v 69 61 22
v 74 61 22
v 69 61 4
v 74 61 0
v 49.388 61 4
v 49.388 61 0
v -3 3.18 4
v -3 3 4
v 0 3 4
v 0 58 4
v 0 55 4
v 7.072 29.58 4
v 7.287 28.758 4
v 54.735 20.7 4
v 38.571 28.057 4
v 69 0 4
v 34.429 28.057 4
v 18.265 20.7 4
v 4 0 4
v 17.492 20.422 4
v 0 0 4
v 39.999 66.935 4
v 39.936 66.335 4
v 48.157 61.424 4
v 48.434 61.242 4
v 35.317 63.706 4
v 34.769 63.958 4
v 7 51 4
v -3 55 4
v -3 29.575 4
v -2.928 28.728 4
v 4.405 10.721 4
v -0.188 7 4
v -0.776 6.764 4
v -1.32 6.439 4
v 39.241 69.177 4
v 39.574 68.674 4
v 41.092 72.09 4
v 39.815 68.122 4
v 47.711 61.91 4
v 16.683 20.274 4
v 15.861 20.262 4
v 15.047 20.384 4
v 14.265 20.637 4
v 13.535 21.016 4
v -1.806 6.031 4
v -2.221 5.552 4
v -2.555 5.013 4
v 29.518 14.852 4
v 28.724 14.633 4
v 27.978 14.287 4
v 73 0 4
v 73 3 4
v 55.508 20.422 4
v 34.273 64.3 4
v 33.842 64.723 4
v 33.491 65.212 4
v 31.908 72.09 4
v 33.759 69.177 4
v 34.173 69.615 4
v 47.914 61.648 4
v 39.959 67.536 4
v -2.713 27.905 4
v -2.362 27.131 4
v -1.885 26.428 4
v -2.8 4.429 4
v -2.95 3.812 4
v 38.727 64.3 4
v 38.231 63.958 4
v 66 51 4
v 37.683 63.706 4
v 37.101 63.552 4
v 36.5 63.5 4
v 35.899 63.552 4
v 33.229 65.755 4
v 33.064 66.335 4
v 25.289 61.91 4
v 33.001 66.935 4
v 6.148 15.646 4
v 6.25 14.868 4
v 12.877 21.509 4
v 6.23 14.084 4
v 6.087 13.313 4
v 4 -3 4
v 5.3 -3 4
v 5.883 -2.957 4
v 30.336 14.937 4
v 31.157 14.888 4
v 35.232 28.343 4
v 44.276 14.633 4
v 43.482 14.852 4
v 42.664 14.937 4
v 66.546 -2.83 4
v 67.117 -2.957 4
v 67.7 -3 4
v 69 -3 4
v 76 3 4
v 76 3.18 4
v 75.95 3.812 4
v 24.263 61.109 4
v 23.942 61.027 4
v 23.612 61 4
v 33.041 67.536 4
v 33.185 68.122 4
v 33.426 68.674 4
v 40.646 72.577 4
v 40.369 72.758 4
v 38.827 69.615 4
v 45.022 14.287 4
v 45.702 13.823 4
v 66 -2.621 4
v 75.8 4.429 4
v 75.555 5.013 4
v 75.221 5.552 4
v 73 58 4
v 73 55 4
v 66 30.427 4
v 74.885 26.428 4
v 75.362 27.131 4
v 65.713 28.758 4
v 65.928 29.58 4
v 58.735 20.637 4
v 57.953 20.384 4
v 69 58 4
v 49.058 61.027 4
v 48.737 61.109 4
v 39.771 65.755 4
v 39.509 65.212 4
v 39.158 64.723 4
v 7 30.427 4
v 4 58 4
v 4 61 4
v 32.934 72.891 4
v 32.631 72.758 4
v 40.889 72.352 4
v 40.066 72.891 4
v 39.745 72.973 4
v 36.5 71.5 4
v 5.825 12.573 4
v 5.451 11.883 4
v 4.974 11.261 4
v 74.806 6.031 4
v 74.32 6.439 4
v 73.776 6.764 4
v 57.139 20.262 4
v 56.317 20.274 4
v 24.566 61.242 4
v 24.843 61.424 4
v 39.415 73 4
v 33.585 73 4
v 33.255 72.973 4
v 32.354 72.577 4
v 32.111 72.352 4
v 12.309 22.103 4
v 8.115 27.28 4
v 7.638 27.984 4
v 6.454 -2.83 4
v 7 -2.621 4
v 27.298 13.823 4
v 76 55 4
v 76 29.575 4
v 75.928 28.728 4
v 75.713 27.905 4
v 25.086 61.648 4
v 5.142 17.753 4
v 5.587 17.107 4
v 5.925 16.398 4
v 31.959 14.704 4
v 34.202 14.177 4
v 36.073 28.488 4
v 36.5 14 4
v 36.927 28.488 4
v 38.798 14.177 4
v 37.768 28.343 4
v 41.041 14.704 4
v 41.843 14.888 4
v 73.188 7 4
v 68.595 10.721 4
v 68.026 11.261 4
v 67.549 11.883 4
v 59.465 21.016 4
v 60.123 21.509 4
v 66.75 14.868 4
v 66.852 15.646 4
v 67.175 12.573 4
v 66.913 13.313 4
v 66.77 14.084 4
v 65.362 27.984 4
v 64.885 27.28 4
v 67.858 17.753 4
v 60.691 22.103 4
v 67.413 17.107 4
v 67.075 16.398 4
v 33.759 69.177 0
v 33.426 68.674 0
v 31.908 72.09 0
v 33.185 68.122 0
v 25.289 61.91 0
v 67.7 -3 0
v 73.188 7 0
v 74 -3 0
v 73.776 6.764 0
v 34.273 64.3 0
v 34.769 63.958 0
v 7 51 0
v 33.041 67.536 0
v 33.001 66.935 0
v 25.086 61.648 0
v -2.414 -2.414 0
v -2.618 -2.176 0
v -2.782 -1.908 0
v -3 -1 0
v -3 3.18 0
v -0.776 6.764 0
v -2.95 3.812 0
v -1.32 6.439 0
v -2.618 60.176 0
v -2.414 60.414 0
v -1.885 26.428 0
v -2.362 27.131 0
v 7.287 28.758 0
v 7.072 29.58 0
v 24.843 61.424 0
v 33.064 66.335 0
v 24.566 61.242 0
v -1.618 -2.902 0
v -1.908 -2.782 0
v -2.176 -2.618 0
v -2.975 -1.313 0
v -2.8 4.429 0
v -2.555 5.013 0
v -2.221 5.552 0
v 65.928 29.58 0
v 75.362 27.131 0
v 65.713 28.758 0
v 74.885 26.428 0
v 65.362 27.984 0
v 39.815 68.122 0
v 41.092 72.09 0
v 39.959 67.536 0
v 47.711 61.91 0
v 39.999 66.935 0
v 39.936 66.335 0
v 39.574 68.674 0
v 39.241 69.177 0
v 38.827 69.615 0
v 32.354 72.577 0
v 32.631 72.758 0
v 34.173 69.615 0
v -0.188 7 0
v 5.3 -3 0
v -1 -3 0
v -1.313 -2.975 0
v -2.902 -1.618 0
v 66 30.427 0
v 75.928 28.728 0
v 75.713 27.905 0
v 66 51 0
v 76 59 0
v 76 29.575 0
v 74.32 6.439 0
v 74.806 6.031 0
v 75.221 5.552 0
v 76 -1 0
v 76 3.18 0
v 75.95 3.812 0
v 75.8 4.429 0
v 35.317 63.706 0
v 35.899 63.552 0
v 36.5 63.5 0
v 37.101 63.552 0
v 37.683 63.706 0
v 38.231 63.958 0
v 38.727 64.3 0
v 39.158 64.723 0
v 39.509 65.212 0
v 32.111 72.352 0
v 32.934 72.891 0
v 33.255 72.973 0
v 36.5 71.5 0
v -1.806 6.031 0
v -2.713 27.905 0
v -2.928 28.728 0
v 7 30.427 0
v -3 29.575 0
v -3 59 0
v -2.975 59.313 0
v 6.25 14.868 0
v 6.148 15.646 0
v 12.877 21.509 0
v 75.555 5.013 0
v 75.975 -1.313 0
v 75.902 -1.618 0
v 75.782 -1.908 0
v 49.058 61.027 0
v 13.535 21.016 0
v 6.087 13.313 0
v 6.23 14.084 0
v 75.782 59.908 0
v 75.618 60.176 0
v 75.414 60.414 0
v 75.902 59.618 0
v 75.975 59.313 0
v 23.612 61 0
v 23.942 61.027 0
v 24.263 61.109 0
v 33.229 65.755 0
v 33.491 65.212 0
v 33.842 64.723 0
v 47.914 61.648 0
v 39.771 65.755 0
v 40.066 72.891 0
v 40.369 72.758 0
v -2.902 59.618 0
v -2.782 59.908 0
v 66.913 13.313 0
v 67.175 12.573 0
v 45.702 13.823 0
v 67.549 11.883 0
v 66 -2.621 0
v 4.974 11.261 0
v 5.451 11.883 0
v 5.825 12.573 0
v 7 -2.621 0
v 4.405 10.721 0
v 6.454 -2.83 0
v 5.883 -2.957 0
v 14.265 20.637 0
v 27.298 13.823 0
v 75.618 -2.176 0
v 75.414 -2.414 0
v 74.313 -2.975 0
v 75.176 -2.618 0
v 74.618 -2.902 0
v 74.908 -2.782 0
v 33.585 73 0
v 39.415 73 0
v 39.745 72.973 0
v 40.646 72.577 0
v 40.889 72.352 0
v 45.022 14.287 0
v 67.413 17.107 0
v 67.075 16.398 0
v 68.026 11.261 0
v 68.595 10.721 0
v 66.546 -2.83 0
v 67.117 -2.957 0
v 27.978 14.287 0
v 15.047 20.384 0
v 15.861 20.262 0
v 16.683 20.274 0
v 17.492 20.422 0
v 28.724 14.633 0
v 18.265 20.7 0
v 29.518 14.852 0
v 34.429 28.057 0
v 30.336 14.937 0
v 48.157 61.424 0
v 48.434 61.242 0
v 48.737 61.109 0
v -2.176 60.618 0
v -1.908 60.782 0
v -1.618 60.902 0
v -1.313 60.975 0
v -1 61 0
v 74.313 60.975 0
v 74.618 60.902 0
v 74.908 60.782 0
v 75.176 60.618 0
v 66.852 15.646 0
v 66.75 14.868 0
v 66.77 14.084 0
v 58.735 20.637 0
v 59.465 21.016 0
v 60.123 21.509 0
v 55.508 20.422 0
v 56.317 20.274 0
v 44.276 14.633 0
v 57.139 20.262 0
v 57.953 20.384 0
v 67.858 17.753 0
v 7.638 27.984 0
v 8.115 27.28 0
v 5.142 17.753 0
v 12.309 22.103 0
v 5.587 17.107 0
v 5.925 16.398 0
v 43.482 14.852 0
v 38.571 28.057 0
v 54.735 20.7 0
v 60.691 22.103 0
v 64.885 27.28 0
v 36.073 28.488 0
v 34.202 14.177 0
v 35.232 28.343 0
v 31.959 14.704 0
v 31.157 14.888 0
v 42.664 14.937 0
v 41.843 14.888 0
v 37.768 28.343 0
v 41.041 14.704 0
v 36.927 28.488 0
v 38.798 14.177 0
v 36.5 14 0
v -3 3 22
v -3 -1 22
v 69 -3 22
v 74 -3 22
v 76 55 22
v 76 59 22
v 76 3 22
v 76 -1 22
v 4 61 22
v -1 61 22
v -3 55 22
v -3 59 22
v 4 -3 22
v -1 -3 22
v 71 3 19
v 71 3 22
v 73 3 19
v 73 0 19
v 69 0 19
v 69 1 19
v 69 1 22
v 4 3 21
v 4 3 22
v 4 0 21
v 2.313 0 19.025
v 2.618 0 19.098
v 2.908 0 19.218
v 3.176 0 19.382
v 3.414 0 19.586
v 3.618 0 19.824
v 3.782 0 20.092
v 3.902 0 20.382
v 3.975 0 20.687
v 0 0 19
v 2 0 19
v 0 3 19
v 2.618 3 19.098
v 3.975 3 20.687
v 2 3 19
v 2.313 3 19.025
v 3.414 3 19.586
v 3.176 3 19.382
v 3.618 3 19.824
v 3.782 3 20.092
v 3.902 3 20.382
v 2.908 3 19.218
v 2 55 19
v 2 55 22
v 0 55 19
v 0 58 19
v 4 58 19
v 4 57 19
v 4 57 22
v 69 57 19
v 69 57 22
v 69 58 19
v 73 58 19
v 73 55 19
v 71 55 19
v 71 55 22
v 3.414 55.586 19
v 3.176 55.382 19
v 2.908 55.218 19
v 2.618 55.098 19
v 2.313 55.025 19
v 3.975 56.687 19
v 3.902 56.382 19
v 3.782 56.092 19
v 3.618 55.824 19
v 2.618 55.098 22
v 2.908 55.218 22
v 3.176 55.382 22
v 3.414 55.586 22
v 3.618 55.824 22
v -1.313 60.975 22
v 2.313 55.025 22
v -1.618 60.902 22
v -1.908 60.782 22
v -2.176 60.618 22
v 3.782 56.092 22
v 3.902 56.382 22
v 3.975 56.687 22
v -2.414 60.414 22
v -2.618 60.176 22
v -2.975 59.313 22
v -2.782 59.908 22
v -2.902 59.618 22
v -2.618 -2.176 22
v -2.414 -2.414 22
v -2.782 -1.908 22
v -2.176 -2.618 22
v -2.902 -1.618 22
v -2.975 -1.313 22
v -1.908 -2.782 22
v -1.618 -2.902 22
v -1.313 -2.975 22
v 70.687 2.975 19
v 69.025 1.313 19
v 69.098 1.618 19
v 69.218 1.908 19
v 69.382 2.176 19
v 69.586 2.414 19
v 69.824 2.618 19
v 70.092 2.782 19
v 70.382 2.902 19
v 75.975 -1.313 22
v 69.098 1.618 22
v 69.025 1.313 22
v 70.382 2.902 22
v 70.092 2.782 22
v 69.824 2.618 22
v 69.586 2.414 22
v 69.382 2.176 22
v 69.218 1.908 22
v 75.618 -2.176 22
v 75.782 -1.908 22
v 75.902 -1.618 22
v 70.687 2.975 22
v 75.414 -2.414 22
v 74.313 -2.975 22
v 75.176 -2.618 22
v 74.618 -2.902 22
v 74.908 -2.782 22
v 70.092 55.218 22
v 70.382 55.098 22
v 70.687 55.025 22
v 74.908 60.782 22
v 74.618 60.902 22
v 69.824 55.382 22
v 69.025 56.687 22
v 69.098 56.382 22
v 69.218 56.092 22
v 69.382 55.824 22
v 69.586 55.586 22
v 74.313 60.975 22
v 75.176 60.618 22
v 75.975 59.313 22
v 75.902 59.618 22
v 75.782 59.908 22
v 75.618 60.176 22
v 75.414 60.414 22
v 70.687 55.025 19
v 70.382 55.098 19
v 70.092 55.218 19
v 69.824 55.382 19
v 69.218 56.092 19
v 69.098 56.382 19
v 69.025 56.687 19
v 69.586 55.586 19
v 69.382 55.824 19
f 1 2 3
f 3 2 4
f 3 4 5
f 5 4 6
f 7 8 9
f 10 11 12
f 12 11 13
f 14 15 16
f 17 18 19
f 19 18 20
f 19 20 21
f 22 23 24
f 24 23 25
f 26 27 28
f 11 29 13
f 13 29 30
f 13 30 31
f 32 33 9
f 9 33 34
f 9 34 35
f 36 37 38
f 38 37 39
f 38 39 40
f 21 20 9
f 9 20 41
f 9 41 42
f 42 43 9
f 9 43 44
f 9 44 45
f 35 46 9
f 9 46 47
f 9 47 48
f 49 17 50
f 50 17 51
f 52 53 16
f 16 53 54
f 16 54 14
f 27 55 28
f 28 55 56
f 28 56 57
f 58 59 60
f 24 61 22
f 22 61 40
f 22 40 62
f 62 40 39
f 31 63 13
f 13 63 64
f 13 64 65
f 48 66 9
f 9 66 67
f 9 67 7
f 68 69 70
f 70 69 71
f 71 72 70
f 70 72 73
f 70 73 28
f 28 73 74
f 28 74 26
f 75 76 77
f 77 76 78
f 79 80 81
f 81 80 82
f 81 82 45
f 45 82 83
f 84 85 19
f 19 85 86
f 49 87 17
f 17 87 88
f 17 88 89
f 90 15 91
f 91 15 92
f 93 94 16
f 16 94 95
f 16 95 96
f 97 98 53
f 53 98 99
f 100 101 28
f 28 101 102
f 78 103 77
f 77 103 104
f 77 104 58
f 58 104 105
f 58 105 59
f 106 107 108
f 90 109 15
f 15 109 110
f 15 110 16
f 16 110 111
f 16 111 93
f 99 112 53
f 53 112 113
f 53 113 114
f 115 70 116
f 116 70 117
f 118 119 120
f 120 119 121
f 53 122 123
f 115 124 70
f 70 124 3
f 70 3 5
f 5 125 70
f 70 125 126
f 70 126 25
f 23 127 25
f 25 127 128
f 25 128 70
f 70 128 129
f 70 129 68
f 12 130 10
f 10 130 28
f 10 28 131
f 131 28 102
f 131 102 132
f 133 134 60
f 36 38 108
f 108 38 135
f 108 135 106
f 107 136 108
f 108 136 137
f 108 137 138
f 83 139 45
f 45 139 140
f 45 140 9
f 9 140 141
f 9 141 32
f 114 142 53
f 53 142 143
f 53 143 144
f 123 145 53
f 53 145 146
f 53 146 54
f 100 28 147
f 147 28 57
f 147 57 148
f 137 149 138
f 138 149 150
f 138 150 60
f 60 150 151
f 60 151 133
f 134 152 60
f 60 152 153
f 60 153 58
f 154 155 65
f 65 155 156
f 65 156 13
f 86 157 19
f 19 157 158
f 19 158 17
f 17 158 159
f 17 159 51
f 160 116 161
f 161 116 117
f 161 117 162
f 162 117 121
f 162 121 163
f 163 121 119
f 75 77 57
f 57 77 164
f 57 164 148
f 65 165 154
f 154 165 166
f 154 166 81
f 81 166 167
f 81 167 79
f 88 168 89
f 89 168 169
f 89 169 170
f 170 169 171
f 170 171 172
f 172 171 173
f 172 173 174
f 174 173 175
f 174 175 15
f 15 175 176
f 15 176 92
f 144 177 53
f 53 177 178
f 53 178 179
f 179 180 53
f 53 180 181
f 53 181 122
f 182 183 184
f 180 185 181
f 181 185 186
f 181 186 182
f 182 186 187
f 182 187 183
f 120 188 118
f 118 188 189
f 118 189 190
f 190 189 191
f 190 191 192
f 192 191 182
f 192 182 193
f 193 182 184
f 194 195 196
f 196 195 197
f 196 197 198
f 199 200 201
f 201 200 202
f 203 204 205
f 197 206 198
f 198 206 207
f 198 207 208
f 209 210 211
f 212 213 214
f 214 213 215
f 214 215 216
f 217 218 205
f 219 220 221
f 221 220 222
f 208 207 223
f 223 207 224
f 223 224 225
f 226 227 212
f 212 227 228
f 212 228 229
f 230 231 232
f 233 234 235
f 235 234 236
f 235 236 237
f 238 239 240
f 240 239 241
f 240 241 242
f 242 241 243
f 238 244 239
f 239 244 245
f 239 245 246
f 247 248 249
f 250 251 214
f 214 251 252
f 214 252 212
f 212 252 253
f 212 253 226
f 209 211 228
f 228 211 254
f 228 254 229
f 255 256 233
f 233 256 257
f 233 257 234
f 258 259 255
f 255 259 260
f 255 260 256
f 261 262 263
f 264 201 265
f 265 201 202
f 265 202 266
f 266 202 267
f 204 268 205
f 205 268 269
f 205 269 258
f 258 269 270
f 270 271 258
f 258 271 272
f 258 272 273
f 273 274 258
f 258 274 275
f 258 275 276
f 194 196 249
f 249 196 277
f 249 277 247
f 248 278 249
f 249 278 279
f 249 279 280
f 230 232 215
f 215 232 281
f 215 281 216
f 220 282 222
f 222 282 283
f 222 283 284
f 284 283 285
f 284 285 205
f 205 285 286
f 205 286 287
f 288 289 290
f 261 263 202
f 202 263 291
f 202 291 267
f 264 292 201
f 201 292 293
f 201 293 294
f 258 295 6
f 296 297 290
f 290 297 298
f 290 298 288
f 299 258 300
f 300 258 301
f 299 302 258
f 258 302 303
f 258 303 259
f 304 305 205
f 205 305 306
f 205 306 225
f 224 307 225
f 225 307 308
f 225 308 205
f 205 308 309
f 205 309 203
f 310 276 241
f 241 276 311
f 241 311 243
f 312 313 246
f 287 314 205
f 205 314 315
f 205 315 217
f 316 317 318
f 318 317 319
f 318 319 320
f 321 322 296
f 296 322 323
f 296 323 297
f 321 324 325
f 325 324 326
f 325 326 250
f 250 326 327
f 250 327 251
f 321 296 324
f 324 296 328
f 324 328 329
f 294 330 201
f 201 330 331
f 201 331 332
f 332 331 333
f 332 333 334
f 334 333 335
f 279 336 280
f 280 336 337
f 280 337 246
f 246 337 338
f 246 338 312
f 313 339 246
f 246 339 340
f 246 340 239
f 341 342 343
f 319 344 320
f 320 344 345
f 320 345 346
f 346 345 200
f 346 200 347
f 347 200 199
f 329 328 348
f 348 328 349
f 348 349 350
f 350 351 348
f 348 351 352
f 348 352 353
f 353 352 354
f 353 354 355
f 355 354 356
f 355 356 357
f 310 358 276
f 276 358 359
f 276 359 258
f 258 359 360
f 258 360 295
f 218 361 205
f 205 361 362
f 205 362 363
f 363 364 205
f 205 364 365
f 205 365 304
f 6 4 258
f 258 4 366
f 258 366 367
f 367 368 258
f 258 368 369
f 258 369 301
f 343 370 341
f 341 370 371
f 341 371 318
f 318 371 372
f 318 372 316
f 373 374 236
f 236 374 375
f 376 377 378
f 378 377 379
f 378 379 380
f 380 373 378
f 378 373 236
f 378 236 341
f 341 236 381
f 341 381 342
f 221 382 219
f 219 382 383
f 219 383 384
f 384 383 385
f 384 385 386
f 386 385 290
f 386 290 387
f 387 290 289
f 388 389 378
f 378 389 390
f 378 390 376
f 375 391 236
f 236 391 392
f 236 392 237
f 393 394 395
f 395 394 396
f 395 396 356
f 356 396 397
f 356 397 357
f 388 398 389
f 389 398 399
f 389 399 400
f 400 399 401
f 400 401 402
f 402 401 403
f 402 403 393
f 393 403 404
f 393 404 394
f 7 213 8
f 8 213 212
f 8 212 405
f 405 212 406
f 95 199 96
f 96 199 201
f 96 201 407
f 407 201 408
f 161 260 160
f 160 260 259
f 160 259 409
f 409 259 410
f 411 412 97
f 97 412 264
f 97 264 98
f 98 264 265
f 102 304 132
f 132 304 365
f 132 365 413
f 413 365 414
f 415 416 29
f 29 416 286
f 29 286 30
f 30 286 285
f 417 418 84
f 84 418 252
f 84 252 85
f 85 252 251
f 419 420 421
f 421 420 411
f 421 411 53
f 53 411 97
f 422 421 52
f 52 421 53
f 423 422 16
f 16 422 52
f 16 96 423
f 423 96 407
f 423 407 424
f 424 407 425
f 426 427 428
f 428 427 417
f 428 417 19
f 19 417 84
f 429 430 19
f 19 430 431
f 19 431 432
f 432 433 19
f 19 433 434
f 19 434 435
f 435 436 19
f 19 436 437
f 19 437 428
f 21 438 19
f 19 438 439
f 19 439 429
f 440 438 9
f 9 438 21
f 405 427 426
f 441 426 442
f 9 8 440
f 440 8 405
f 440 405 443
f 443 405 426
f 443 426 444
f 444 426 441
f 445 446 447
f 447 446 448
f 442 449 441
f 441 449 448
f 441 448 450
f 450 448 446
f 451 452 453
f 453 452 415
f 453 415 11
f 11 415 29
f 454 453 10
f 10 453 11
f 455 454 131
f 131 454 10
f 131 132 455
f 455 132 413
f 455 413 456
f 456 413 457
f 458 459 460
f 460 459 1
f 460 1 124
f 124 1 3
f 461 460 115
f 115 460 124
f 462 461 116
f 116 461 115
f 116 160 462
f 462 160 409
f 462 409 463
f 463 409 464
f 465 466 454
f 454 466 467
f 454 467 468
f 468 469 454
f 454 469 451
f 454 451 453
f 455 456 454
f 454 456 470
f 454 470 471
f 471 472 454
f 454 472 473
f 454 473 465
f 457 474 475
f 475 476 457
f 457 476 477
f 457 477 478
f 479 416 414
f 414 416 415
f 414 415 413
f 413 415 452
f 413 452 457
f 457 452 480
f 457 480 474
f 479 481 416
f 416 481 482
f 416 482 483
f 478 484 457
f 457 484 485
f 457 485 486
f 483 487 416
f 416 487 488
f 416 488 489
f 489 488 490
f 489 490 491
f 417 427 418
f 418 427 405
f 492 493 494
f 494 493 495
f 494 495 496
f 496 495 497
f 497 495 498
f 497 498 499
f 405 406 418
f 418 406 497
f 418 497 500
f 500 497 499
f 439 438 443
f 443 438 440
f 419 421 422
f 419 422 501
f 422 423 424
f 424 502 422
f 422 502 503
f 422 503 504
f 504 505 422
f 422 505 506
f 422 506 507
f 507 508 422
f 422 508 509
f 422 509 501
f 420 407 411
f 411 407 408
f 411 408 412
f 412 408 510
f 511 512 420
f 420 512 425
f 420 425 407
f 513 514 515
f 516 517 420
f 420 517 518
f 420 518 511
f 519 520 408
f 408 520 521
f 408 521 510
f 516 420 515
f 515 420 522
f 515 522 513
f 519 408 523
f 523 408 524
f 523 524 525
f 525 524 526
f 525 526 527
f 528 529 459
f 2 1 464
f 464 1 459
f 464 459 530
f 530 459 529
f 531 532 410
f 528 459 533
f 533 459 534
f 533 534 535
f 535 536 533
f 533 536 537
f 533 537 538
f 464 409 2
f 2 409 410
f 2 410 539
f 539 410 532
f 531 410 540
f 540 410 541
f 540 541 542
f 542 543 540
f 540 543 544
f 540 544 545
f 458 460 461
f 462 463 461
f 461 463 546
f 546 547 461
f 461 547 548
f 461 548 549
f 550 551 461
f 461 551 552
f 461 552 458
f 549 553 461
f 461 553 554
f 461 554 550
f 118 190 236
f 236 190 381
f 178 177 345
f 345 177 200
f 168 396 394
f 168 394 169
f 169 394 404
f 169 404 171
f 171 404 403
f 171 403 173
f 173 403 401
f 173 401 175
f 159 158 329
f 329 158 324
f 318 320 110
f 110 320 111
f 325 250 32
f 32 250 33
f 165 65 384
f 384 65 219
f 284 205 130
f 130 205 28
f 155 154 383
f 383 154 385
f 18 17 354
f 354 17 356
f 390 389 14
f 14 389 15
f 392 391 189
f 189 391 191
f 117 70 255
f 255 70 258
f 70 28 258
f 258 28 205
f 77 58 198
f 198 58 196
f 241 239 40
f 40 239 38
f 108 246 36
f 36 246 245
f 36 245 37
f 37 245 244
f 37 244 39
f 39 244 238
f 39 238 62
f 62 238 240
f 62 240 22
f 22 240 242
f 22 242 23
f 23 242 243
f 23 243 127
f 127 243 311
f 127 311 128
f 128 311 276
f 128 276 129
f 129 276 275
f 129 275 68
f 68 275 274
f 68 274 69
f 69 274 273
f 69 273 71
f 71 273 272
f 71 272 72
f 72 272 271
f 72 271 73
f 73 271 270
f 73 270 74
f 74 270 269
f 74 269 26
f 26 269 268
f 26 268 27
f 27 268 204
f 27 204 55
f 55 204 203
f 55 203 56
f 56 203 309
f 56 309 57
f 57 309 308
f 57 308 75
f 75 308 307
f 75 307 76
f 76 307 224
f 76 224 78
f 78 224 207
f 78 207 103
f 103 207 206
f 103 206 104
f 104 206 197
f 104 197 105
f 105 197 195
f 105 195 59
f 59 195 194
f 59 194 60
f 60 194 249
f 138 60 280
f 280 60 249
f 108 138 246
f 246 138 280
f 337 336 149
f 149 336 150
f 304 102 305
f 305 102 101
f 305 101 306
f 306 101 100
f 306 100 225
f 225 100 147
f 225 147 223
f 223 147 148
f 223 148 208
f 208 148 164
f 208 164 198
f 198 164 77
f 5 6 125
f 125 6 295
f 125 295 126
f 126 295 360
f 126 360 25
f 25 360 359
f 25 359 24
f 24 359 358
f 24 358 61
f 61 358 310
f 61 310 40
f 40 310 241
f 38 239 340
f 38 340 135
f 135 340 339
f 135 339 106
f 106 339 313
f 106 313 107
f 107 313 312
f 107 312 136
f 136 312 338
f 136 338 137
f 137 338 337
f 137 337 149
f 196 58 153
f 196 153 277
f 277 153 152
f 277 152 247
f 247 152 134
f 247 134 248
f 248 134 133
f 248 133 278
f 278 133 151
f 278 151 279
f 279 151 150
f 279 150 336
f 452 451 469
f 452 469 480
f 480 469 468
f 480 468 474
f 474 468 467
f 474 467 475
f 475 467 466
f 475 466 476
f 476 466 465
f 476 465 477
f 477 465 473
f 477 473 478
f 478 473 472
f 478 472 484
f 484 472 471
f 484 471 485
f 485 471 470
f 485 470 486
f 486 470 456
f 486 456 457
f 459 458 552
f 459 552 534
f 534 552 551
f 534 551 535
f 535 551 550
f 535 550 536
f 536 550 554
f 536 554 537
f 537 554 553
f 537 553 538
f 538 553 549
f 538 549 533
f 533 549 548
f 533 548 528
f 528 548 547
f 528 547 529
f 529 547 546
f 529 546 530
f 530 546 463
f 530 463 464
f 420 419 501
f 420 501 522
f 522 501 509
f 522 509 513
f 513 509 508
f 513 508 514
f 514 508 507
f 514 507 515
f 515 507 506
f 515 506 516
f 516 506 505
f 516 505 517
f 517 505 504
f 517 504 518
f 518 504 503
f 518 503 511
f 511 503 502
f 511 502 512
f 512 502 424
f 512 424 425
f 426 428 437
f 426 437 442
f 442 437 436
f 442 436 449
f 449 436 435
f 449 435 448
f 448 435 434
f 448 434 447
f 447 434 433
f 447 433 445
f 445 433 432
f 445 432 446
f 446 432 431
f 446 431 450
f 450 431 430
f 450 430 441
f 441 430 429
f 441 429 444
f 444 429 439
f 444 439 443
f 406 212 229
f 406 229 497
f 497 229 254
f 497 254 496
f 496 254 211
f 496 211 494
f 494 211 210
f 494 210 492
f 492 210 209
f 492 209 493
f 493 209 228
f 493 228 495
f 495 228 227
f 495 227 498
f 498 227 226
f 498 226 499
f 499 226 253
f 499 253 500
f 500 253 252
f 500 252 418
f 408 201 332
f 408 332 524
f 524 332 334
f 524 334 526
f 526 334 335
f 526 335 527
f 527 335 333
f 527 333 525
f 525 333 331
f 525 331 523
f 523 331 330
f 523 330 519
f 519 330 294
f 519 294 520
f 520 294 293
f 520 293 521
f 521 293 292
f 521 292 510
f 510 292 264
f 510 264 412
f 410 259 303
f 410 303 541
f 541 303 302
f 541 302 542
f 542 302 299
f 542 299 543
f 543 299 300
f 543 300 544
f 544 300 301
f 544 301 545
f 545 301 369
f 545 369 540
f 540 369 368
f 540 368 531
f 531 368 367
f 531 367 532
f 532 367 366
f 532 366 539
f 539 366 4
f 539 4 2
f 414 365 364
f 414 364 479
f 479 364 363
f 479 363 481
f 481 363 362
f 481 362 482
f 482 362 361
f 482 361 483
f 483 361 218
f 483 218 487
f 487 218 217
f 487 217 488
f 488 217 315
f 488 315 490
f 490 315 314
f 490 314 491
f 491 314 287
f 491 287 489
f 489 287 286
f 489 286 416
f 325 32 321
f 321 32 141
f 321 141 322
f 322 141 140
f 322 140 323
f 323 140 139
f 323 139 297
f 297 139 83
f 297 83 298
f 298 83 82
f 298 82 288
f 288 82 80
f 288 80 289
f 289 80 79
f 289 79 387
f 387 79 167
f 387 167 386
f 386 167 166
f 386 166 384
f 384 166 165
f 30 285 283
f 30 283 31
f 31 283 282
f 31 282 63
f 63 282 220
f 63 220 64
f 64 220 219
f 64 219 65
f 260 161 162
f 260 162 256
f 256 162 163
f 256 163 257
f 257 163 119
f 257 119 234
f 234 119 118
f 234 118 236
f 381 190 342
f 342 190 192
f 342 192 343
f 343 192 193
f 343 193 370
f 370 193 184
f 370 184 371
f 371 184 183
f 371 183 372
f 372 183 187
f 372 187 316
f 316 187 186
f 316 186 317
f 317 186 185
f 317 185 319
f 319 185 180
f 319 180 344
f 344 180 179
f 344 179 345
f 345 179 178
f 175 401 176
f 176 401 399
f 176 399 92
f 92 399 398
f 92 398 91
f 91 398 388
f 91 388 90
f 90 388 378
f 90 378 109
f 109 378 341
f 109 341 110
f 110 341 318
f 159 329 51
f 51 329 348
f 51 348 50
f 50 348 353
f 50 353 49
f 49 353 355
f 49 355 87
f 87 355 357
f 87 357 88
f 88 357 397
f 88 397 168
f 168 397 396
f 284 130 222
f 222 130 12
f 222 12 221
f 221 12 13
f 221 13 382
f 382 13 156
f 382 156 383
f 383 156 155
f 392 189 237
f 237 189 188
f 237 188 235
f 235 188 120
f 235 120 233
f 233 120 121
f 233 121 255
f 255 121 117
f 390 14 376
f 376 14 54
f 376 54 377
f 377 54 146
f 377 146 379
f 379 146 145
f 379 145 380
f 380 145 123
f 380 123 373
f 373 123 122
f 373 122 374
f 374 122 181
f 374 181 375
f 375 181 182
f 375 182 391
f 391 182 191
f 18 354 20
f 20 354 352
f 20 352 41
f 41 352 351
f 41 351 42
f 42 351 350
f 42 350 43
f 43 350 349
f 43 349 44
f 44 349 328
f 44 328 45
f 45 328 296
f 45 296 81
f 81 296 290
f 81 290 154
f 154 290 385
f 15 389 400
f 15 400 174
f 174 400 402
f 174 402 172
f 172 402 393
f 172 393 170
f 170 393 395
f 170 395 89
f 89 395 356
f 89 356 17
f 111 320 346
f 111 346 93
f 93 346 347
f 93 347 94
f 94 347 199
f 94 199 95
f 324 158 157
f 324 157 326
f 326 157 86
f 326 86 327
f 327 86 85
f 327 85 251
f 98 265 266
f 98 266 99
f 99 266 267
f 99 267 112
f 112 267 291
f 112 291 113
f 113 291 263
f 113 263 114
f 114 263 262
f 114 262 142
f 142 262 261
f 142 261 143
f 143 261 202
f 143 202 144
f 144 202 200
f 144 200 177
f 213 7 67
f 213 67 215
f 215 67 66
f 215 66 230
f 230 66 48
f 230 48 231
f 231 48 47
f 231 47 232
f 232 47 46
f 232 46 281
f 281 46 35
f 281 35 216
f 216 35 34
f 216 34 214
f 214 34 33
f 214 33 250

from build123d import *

# Parameters (mm, degrees)
SKETCH1_W           = 79
SKETCH1_H           = 64
BOSS_EXTRUDE1_DEPTH = 4
BOSS_EXTRUDE2_DEPTH = 15
SKETCH3_W           = 7
SKETCH3_H           = 6
BOSS_EXTRUDE3_DEPTH = 3
CUT_EXTRUDE1_DEPTH  = 4
BOSS_EXTRUDE4_DEPTH = 4
FILLET1_R           = 2
FILLET2_R           = 5
FILLET3_R           = 4


with BuildPart() as part:
    # Sketch1 → Boss-Extrude1 (new body)
    with BuildSketch(Plane.XY):
        with Locations((36.5, 29)):
            Rectangle(SKETCH1_W, SKETCH1_H)
    extrude(amount=BOSS_EXTRUDE1_DEPTH)

    # Sketch2 → Boss-Extrude2 (add)
    with BuildSketch(Plane.XY.offset(4)):
        Polygon((76, -3), (76, 3), (73, 3), (73, 0), (69, 0), (69, -3), align=None)
        Polygon((0, 3), (-3, 3), (-3, -3), (4, -3), (4, 0), (0, 0), align=None)
        Polygon((0, 58), (4, 58), (4, 61), (-3, 61), (-3, 55), (0, 55), align=None)
        Polygon((76, 61), (69, 61), (69, 58), (73, 58), (73, 55), (76, 55), align=None)
    extrude(amount=BOSS_EXTRUDE2_DEPTH)

    # Sketch3 → Boss-Extrude3 (add)
    with BuildSketch(Plane.XY.offset(19)):
        with Locations((0.5, 58)):
            Rectangle(SKETCH3_W, SKETCH3_H)
        with Locations((0.5, 0)):
            Rectangle(SKETCH3_W, SKETCH3_H)
        with Locations((72.5, 0)):
            Rectangle(SKETCH3_W, SKETCH3_H)
        with Locations((72.5, 58)):
            Rectangle(SKETCH3_W, SKETCH3_H)
    extrude(amount=BOSS_EXTRUDE3_DEPTH)

    # Sketch4 → Cut-Extrude1 (cut)
    with BuildSketch(Plane(origin=(0, 0, 0), x_dir=(-1, 0, 0), z_dir=(0, 0, -1))):
        Polygon((3, 27.803812192), (-8.289774189, 13.867997178), (0.187909827, 7), (3, 7), align=None)
        Polygon((-73.187909827, 7), (-64.710225811, 13.867997178), (-76, 27.803812192), (-76, 7), align=None)
        Polygon((-7, 51), (-66, 51), (-66, 28.65625), (-58.25574912, 19.09694032), (-36.5, 29), (-14.74425088, 19.09694032), (-7, 28.65625), align=None)
        with BuildLine():
            Line((-66, -2.620585177), (-66, -3))
            Line((-66, -3), (-7, -3))
            Line((-7, -3), (-7, -2.620585177))
            Line((-7, -2.620585177), (-29.594686034, 15.683970598))
            ThreePointArc((-29.594686034, 15.683970598), (-36.5, 14), (-43.405313966, 15.683970598))
            Line((-43.405313966, 15.683970598), (-66, -2.620585177))
        make_face()
    extrude(amount=-CUT_EXTRUDE1_DEPTH, mode=Mode.SUBTRACT)

    # Sketch5 → Boss-Extrude4 (add)
    with BuildSketch(Plane(origin=(0, 0, 0), x_dir=(-1, 0, 0), z_dir=(0, 0, -1))):
        Polygon((-24.697125845, 61), (-32.5, 73), (-40.5, 73), (-48.302874155, 61), align=None)
        with BuildLine():
            Line((-38.826625292, 69.61473034), (-36.5, 71.5))
            Line((-36.5, 71.5), (-34.173374708, 69.61473034))
            ThreePointArc((-34.173374708, 69.61473034), (-36.5, 63.5), (-38.826625292, 69.61473034))
        make_face(mode=Mode.SUBTRACT)
    extrude(amount=-BOSS_EXTRUDE4_DEPTH)

    # Fillet1
    fillet1_edges = [part.edges().sort_by_distance(p)[0] for p in [
        (4, 1.5, 19),
        (69, 3, 20.5),
        (69, 55, 20.5),
        (32.5, 73, 2),
        (24.697125845, 61, 2),
        (48.302874155, 61, 2),
        (40.5, 73, 2),
        (76, 61, 11),
        (76, -3, 11),
        (-3, -3, 11),
        (-3, 61, 11),
        (4, 55, 20.5),
    ]]
    fillet(fillet1_edges, radius=FILLET1_R)

    # Fillet2
    fillet2_edges = [part.edges().sort_by_distance(p)[0] for p in [
        (76, 27.803812192, 2),
        (64.710225811, 13.867997178, 2),
        (-3, 27.803812192, 2),
        (8.289774189, 13.867997178, 2),
        (7, 28.65625, 2),
        (14.74425088, 19.09694032, 2),
        (36.5, 29, 2),
        (58.25574912, 19.09694032, 2),
        (66, 28.65625, 2),
        (43.405313966, 15.683970598, 2),
        (29.594686034, 15.683970598, 2),
    ]]
    fillet(fillet2_edges, radius=FILLET2_R)

    # Fillet3
    # the kernel refuses this fillet: 4 mm, written as the material it takes off along each edge
    with BuildSketch(Plane(origin=(76, 7, -9.548844905), x_dir=(-1, 0, 0), z_dir=(0, 0, 1))) as fillet3_piece_1:
        with BuildLine():
            CenterArc((4, 3.819537962), FILLET3_R, 180, 72.723847708)
            Line((0, 3.819537962), (-0.08, 3.819537962))
            Line((-0.08, 3.819537962), (-0.08, 0))
            Line((-0.08, 0), (0, -0.08))
            ThreePointArc((0, -0.08), (1.406045086, -0.08), (2.788331976, -0.076390759))
            Line((2.788331976, -0.076390759), (2.812090173, 0))
        make_face()
    extrude(amount=23.097689809, mode=Mode.SUBTRACT)
    with BuildSketch(Plane(origin=(-3, 7, -9.548844905), x_dir=(1, 0, 0), z_dir=(0, 0, 1))) as fillet3_piece_2:
        with BuildLine():
            CenterArc((4, -3.819537962), FILLET3_R, 107.276152292, 72.723847708)
            Line((0, -3.819537962), (-0.08, -3.819537962))
            Line((-0.08, -3.819537962), (-0.08, 0))
            Line((-0.08, 0), (0, 0.08))
            ThreePointArc((0, 0.08), (1.406045086, 0.08), (2.788331976, 0.076390759))
            Line((2.788331976, 0.076390759), (2.812090173, 0))
        make_face()
    extrude(amount=23.097689809, mode=Mode.SUBTRACT)
    with BuildSketch(Plane(origin=(7, -3, -4.251002073), x_dir=(0, 1, 0), z_dir=(0, 0, 1))) as fillet3_piece_3:
        with BuildLine():
            CenterArc((4, 1.700400829), FILLET3_R, 180, 25.15700637)
            Line((0, 1.700400829), (-0.08, 1.700400829))
            Line((-0.08, 1.700400829), (-0.08, 0))
            Line((-0.08, 0), (0, -0.08))
            ThreePointArc((0, -0.08), (0.189707412, -0.08), (0.30700312, -0.034008017))
            Line((0.30700312, -0.034008017), (0.379414823, 0))
        make_face()
    extrude(amount=12.502004146, mode=Mode.SUBTRACT)
    with BuildSketch(Plane(origin=(66, -3, -4.251002073), x_dir=(1, 0, 0), z_dir=(0, 0, 1))) as fillet3_piece_4:
        with BuildLine():
            CenterArc((1.700400829, 4), FILLET3_R, 244.84299363, 25.15700637)
            Line((0, 0.379414823), (-0.034008017, 0.30700312))
            ThreePointArc((-0.034008017, 0.30700312), (-0.08, 0.189707412), (-0.08, 0))
            Line((-0.08, 0), (0, -0.08))
            Line((0, -0.08), (1.700400829, -0.08))
            Line((1.700400829, -0.08), (1.700400829, 0))
        make_face()
    extrude(amount=12.502004146, mode=Mode.SUBTRACT)


solid = part.part
